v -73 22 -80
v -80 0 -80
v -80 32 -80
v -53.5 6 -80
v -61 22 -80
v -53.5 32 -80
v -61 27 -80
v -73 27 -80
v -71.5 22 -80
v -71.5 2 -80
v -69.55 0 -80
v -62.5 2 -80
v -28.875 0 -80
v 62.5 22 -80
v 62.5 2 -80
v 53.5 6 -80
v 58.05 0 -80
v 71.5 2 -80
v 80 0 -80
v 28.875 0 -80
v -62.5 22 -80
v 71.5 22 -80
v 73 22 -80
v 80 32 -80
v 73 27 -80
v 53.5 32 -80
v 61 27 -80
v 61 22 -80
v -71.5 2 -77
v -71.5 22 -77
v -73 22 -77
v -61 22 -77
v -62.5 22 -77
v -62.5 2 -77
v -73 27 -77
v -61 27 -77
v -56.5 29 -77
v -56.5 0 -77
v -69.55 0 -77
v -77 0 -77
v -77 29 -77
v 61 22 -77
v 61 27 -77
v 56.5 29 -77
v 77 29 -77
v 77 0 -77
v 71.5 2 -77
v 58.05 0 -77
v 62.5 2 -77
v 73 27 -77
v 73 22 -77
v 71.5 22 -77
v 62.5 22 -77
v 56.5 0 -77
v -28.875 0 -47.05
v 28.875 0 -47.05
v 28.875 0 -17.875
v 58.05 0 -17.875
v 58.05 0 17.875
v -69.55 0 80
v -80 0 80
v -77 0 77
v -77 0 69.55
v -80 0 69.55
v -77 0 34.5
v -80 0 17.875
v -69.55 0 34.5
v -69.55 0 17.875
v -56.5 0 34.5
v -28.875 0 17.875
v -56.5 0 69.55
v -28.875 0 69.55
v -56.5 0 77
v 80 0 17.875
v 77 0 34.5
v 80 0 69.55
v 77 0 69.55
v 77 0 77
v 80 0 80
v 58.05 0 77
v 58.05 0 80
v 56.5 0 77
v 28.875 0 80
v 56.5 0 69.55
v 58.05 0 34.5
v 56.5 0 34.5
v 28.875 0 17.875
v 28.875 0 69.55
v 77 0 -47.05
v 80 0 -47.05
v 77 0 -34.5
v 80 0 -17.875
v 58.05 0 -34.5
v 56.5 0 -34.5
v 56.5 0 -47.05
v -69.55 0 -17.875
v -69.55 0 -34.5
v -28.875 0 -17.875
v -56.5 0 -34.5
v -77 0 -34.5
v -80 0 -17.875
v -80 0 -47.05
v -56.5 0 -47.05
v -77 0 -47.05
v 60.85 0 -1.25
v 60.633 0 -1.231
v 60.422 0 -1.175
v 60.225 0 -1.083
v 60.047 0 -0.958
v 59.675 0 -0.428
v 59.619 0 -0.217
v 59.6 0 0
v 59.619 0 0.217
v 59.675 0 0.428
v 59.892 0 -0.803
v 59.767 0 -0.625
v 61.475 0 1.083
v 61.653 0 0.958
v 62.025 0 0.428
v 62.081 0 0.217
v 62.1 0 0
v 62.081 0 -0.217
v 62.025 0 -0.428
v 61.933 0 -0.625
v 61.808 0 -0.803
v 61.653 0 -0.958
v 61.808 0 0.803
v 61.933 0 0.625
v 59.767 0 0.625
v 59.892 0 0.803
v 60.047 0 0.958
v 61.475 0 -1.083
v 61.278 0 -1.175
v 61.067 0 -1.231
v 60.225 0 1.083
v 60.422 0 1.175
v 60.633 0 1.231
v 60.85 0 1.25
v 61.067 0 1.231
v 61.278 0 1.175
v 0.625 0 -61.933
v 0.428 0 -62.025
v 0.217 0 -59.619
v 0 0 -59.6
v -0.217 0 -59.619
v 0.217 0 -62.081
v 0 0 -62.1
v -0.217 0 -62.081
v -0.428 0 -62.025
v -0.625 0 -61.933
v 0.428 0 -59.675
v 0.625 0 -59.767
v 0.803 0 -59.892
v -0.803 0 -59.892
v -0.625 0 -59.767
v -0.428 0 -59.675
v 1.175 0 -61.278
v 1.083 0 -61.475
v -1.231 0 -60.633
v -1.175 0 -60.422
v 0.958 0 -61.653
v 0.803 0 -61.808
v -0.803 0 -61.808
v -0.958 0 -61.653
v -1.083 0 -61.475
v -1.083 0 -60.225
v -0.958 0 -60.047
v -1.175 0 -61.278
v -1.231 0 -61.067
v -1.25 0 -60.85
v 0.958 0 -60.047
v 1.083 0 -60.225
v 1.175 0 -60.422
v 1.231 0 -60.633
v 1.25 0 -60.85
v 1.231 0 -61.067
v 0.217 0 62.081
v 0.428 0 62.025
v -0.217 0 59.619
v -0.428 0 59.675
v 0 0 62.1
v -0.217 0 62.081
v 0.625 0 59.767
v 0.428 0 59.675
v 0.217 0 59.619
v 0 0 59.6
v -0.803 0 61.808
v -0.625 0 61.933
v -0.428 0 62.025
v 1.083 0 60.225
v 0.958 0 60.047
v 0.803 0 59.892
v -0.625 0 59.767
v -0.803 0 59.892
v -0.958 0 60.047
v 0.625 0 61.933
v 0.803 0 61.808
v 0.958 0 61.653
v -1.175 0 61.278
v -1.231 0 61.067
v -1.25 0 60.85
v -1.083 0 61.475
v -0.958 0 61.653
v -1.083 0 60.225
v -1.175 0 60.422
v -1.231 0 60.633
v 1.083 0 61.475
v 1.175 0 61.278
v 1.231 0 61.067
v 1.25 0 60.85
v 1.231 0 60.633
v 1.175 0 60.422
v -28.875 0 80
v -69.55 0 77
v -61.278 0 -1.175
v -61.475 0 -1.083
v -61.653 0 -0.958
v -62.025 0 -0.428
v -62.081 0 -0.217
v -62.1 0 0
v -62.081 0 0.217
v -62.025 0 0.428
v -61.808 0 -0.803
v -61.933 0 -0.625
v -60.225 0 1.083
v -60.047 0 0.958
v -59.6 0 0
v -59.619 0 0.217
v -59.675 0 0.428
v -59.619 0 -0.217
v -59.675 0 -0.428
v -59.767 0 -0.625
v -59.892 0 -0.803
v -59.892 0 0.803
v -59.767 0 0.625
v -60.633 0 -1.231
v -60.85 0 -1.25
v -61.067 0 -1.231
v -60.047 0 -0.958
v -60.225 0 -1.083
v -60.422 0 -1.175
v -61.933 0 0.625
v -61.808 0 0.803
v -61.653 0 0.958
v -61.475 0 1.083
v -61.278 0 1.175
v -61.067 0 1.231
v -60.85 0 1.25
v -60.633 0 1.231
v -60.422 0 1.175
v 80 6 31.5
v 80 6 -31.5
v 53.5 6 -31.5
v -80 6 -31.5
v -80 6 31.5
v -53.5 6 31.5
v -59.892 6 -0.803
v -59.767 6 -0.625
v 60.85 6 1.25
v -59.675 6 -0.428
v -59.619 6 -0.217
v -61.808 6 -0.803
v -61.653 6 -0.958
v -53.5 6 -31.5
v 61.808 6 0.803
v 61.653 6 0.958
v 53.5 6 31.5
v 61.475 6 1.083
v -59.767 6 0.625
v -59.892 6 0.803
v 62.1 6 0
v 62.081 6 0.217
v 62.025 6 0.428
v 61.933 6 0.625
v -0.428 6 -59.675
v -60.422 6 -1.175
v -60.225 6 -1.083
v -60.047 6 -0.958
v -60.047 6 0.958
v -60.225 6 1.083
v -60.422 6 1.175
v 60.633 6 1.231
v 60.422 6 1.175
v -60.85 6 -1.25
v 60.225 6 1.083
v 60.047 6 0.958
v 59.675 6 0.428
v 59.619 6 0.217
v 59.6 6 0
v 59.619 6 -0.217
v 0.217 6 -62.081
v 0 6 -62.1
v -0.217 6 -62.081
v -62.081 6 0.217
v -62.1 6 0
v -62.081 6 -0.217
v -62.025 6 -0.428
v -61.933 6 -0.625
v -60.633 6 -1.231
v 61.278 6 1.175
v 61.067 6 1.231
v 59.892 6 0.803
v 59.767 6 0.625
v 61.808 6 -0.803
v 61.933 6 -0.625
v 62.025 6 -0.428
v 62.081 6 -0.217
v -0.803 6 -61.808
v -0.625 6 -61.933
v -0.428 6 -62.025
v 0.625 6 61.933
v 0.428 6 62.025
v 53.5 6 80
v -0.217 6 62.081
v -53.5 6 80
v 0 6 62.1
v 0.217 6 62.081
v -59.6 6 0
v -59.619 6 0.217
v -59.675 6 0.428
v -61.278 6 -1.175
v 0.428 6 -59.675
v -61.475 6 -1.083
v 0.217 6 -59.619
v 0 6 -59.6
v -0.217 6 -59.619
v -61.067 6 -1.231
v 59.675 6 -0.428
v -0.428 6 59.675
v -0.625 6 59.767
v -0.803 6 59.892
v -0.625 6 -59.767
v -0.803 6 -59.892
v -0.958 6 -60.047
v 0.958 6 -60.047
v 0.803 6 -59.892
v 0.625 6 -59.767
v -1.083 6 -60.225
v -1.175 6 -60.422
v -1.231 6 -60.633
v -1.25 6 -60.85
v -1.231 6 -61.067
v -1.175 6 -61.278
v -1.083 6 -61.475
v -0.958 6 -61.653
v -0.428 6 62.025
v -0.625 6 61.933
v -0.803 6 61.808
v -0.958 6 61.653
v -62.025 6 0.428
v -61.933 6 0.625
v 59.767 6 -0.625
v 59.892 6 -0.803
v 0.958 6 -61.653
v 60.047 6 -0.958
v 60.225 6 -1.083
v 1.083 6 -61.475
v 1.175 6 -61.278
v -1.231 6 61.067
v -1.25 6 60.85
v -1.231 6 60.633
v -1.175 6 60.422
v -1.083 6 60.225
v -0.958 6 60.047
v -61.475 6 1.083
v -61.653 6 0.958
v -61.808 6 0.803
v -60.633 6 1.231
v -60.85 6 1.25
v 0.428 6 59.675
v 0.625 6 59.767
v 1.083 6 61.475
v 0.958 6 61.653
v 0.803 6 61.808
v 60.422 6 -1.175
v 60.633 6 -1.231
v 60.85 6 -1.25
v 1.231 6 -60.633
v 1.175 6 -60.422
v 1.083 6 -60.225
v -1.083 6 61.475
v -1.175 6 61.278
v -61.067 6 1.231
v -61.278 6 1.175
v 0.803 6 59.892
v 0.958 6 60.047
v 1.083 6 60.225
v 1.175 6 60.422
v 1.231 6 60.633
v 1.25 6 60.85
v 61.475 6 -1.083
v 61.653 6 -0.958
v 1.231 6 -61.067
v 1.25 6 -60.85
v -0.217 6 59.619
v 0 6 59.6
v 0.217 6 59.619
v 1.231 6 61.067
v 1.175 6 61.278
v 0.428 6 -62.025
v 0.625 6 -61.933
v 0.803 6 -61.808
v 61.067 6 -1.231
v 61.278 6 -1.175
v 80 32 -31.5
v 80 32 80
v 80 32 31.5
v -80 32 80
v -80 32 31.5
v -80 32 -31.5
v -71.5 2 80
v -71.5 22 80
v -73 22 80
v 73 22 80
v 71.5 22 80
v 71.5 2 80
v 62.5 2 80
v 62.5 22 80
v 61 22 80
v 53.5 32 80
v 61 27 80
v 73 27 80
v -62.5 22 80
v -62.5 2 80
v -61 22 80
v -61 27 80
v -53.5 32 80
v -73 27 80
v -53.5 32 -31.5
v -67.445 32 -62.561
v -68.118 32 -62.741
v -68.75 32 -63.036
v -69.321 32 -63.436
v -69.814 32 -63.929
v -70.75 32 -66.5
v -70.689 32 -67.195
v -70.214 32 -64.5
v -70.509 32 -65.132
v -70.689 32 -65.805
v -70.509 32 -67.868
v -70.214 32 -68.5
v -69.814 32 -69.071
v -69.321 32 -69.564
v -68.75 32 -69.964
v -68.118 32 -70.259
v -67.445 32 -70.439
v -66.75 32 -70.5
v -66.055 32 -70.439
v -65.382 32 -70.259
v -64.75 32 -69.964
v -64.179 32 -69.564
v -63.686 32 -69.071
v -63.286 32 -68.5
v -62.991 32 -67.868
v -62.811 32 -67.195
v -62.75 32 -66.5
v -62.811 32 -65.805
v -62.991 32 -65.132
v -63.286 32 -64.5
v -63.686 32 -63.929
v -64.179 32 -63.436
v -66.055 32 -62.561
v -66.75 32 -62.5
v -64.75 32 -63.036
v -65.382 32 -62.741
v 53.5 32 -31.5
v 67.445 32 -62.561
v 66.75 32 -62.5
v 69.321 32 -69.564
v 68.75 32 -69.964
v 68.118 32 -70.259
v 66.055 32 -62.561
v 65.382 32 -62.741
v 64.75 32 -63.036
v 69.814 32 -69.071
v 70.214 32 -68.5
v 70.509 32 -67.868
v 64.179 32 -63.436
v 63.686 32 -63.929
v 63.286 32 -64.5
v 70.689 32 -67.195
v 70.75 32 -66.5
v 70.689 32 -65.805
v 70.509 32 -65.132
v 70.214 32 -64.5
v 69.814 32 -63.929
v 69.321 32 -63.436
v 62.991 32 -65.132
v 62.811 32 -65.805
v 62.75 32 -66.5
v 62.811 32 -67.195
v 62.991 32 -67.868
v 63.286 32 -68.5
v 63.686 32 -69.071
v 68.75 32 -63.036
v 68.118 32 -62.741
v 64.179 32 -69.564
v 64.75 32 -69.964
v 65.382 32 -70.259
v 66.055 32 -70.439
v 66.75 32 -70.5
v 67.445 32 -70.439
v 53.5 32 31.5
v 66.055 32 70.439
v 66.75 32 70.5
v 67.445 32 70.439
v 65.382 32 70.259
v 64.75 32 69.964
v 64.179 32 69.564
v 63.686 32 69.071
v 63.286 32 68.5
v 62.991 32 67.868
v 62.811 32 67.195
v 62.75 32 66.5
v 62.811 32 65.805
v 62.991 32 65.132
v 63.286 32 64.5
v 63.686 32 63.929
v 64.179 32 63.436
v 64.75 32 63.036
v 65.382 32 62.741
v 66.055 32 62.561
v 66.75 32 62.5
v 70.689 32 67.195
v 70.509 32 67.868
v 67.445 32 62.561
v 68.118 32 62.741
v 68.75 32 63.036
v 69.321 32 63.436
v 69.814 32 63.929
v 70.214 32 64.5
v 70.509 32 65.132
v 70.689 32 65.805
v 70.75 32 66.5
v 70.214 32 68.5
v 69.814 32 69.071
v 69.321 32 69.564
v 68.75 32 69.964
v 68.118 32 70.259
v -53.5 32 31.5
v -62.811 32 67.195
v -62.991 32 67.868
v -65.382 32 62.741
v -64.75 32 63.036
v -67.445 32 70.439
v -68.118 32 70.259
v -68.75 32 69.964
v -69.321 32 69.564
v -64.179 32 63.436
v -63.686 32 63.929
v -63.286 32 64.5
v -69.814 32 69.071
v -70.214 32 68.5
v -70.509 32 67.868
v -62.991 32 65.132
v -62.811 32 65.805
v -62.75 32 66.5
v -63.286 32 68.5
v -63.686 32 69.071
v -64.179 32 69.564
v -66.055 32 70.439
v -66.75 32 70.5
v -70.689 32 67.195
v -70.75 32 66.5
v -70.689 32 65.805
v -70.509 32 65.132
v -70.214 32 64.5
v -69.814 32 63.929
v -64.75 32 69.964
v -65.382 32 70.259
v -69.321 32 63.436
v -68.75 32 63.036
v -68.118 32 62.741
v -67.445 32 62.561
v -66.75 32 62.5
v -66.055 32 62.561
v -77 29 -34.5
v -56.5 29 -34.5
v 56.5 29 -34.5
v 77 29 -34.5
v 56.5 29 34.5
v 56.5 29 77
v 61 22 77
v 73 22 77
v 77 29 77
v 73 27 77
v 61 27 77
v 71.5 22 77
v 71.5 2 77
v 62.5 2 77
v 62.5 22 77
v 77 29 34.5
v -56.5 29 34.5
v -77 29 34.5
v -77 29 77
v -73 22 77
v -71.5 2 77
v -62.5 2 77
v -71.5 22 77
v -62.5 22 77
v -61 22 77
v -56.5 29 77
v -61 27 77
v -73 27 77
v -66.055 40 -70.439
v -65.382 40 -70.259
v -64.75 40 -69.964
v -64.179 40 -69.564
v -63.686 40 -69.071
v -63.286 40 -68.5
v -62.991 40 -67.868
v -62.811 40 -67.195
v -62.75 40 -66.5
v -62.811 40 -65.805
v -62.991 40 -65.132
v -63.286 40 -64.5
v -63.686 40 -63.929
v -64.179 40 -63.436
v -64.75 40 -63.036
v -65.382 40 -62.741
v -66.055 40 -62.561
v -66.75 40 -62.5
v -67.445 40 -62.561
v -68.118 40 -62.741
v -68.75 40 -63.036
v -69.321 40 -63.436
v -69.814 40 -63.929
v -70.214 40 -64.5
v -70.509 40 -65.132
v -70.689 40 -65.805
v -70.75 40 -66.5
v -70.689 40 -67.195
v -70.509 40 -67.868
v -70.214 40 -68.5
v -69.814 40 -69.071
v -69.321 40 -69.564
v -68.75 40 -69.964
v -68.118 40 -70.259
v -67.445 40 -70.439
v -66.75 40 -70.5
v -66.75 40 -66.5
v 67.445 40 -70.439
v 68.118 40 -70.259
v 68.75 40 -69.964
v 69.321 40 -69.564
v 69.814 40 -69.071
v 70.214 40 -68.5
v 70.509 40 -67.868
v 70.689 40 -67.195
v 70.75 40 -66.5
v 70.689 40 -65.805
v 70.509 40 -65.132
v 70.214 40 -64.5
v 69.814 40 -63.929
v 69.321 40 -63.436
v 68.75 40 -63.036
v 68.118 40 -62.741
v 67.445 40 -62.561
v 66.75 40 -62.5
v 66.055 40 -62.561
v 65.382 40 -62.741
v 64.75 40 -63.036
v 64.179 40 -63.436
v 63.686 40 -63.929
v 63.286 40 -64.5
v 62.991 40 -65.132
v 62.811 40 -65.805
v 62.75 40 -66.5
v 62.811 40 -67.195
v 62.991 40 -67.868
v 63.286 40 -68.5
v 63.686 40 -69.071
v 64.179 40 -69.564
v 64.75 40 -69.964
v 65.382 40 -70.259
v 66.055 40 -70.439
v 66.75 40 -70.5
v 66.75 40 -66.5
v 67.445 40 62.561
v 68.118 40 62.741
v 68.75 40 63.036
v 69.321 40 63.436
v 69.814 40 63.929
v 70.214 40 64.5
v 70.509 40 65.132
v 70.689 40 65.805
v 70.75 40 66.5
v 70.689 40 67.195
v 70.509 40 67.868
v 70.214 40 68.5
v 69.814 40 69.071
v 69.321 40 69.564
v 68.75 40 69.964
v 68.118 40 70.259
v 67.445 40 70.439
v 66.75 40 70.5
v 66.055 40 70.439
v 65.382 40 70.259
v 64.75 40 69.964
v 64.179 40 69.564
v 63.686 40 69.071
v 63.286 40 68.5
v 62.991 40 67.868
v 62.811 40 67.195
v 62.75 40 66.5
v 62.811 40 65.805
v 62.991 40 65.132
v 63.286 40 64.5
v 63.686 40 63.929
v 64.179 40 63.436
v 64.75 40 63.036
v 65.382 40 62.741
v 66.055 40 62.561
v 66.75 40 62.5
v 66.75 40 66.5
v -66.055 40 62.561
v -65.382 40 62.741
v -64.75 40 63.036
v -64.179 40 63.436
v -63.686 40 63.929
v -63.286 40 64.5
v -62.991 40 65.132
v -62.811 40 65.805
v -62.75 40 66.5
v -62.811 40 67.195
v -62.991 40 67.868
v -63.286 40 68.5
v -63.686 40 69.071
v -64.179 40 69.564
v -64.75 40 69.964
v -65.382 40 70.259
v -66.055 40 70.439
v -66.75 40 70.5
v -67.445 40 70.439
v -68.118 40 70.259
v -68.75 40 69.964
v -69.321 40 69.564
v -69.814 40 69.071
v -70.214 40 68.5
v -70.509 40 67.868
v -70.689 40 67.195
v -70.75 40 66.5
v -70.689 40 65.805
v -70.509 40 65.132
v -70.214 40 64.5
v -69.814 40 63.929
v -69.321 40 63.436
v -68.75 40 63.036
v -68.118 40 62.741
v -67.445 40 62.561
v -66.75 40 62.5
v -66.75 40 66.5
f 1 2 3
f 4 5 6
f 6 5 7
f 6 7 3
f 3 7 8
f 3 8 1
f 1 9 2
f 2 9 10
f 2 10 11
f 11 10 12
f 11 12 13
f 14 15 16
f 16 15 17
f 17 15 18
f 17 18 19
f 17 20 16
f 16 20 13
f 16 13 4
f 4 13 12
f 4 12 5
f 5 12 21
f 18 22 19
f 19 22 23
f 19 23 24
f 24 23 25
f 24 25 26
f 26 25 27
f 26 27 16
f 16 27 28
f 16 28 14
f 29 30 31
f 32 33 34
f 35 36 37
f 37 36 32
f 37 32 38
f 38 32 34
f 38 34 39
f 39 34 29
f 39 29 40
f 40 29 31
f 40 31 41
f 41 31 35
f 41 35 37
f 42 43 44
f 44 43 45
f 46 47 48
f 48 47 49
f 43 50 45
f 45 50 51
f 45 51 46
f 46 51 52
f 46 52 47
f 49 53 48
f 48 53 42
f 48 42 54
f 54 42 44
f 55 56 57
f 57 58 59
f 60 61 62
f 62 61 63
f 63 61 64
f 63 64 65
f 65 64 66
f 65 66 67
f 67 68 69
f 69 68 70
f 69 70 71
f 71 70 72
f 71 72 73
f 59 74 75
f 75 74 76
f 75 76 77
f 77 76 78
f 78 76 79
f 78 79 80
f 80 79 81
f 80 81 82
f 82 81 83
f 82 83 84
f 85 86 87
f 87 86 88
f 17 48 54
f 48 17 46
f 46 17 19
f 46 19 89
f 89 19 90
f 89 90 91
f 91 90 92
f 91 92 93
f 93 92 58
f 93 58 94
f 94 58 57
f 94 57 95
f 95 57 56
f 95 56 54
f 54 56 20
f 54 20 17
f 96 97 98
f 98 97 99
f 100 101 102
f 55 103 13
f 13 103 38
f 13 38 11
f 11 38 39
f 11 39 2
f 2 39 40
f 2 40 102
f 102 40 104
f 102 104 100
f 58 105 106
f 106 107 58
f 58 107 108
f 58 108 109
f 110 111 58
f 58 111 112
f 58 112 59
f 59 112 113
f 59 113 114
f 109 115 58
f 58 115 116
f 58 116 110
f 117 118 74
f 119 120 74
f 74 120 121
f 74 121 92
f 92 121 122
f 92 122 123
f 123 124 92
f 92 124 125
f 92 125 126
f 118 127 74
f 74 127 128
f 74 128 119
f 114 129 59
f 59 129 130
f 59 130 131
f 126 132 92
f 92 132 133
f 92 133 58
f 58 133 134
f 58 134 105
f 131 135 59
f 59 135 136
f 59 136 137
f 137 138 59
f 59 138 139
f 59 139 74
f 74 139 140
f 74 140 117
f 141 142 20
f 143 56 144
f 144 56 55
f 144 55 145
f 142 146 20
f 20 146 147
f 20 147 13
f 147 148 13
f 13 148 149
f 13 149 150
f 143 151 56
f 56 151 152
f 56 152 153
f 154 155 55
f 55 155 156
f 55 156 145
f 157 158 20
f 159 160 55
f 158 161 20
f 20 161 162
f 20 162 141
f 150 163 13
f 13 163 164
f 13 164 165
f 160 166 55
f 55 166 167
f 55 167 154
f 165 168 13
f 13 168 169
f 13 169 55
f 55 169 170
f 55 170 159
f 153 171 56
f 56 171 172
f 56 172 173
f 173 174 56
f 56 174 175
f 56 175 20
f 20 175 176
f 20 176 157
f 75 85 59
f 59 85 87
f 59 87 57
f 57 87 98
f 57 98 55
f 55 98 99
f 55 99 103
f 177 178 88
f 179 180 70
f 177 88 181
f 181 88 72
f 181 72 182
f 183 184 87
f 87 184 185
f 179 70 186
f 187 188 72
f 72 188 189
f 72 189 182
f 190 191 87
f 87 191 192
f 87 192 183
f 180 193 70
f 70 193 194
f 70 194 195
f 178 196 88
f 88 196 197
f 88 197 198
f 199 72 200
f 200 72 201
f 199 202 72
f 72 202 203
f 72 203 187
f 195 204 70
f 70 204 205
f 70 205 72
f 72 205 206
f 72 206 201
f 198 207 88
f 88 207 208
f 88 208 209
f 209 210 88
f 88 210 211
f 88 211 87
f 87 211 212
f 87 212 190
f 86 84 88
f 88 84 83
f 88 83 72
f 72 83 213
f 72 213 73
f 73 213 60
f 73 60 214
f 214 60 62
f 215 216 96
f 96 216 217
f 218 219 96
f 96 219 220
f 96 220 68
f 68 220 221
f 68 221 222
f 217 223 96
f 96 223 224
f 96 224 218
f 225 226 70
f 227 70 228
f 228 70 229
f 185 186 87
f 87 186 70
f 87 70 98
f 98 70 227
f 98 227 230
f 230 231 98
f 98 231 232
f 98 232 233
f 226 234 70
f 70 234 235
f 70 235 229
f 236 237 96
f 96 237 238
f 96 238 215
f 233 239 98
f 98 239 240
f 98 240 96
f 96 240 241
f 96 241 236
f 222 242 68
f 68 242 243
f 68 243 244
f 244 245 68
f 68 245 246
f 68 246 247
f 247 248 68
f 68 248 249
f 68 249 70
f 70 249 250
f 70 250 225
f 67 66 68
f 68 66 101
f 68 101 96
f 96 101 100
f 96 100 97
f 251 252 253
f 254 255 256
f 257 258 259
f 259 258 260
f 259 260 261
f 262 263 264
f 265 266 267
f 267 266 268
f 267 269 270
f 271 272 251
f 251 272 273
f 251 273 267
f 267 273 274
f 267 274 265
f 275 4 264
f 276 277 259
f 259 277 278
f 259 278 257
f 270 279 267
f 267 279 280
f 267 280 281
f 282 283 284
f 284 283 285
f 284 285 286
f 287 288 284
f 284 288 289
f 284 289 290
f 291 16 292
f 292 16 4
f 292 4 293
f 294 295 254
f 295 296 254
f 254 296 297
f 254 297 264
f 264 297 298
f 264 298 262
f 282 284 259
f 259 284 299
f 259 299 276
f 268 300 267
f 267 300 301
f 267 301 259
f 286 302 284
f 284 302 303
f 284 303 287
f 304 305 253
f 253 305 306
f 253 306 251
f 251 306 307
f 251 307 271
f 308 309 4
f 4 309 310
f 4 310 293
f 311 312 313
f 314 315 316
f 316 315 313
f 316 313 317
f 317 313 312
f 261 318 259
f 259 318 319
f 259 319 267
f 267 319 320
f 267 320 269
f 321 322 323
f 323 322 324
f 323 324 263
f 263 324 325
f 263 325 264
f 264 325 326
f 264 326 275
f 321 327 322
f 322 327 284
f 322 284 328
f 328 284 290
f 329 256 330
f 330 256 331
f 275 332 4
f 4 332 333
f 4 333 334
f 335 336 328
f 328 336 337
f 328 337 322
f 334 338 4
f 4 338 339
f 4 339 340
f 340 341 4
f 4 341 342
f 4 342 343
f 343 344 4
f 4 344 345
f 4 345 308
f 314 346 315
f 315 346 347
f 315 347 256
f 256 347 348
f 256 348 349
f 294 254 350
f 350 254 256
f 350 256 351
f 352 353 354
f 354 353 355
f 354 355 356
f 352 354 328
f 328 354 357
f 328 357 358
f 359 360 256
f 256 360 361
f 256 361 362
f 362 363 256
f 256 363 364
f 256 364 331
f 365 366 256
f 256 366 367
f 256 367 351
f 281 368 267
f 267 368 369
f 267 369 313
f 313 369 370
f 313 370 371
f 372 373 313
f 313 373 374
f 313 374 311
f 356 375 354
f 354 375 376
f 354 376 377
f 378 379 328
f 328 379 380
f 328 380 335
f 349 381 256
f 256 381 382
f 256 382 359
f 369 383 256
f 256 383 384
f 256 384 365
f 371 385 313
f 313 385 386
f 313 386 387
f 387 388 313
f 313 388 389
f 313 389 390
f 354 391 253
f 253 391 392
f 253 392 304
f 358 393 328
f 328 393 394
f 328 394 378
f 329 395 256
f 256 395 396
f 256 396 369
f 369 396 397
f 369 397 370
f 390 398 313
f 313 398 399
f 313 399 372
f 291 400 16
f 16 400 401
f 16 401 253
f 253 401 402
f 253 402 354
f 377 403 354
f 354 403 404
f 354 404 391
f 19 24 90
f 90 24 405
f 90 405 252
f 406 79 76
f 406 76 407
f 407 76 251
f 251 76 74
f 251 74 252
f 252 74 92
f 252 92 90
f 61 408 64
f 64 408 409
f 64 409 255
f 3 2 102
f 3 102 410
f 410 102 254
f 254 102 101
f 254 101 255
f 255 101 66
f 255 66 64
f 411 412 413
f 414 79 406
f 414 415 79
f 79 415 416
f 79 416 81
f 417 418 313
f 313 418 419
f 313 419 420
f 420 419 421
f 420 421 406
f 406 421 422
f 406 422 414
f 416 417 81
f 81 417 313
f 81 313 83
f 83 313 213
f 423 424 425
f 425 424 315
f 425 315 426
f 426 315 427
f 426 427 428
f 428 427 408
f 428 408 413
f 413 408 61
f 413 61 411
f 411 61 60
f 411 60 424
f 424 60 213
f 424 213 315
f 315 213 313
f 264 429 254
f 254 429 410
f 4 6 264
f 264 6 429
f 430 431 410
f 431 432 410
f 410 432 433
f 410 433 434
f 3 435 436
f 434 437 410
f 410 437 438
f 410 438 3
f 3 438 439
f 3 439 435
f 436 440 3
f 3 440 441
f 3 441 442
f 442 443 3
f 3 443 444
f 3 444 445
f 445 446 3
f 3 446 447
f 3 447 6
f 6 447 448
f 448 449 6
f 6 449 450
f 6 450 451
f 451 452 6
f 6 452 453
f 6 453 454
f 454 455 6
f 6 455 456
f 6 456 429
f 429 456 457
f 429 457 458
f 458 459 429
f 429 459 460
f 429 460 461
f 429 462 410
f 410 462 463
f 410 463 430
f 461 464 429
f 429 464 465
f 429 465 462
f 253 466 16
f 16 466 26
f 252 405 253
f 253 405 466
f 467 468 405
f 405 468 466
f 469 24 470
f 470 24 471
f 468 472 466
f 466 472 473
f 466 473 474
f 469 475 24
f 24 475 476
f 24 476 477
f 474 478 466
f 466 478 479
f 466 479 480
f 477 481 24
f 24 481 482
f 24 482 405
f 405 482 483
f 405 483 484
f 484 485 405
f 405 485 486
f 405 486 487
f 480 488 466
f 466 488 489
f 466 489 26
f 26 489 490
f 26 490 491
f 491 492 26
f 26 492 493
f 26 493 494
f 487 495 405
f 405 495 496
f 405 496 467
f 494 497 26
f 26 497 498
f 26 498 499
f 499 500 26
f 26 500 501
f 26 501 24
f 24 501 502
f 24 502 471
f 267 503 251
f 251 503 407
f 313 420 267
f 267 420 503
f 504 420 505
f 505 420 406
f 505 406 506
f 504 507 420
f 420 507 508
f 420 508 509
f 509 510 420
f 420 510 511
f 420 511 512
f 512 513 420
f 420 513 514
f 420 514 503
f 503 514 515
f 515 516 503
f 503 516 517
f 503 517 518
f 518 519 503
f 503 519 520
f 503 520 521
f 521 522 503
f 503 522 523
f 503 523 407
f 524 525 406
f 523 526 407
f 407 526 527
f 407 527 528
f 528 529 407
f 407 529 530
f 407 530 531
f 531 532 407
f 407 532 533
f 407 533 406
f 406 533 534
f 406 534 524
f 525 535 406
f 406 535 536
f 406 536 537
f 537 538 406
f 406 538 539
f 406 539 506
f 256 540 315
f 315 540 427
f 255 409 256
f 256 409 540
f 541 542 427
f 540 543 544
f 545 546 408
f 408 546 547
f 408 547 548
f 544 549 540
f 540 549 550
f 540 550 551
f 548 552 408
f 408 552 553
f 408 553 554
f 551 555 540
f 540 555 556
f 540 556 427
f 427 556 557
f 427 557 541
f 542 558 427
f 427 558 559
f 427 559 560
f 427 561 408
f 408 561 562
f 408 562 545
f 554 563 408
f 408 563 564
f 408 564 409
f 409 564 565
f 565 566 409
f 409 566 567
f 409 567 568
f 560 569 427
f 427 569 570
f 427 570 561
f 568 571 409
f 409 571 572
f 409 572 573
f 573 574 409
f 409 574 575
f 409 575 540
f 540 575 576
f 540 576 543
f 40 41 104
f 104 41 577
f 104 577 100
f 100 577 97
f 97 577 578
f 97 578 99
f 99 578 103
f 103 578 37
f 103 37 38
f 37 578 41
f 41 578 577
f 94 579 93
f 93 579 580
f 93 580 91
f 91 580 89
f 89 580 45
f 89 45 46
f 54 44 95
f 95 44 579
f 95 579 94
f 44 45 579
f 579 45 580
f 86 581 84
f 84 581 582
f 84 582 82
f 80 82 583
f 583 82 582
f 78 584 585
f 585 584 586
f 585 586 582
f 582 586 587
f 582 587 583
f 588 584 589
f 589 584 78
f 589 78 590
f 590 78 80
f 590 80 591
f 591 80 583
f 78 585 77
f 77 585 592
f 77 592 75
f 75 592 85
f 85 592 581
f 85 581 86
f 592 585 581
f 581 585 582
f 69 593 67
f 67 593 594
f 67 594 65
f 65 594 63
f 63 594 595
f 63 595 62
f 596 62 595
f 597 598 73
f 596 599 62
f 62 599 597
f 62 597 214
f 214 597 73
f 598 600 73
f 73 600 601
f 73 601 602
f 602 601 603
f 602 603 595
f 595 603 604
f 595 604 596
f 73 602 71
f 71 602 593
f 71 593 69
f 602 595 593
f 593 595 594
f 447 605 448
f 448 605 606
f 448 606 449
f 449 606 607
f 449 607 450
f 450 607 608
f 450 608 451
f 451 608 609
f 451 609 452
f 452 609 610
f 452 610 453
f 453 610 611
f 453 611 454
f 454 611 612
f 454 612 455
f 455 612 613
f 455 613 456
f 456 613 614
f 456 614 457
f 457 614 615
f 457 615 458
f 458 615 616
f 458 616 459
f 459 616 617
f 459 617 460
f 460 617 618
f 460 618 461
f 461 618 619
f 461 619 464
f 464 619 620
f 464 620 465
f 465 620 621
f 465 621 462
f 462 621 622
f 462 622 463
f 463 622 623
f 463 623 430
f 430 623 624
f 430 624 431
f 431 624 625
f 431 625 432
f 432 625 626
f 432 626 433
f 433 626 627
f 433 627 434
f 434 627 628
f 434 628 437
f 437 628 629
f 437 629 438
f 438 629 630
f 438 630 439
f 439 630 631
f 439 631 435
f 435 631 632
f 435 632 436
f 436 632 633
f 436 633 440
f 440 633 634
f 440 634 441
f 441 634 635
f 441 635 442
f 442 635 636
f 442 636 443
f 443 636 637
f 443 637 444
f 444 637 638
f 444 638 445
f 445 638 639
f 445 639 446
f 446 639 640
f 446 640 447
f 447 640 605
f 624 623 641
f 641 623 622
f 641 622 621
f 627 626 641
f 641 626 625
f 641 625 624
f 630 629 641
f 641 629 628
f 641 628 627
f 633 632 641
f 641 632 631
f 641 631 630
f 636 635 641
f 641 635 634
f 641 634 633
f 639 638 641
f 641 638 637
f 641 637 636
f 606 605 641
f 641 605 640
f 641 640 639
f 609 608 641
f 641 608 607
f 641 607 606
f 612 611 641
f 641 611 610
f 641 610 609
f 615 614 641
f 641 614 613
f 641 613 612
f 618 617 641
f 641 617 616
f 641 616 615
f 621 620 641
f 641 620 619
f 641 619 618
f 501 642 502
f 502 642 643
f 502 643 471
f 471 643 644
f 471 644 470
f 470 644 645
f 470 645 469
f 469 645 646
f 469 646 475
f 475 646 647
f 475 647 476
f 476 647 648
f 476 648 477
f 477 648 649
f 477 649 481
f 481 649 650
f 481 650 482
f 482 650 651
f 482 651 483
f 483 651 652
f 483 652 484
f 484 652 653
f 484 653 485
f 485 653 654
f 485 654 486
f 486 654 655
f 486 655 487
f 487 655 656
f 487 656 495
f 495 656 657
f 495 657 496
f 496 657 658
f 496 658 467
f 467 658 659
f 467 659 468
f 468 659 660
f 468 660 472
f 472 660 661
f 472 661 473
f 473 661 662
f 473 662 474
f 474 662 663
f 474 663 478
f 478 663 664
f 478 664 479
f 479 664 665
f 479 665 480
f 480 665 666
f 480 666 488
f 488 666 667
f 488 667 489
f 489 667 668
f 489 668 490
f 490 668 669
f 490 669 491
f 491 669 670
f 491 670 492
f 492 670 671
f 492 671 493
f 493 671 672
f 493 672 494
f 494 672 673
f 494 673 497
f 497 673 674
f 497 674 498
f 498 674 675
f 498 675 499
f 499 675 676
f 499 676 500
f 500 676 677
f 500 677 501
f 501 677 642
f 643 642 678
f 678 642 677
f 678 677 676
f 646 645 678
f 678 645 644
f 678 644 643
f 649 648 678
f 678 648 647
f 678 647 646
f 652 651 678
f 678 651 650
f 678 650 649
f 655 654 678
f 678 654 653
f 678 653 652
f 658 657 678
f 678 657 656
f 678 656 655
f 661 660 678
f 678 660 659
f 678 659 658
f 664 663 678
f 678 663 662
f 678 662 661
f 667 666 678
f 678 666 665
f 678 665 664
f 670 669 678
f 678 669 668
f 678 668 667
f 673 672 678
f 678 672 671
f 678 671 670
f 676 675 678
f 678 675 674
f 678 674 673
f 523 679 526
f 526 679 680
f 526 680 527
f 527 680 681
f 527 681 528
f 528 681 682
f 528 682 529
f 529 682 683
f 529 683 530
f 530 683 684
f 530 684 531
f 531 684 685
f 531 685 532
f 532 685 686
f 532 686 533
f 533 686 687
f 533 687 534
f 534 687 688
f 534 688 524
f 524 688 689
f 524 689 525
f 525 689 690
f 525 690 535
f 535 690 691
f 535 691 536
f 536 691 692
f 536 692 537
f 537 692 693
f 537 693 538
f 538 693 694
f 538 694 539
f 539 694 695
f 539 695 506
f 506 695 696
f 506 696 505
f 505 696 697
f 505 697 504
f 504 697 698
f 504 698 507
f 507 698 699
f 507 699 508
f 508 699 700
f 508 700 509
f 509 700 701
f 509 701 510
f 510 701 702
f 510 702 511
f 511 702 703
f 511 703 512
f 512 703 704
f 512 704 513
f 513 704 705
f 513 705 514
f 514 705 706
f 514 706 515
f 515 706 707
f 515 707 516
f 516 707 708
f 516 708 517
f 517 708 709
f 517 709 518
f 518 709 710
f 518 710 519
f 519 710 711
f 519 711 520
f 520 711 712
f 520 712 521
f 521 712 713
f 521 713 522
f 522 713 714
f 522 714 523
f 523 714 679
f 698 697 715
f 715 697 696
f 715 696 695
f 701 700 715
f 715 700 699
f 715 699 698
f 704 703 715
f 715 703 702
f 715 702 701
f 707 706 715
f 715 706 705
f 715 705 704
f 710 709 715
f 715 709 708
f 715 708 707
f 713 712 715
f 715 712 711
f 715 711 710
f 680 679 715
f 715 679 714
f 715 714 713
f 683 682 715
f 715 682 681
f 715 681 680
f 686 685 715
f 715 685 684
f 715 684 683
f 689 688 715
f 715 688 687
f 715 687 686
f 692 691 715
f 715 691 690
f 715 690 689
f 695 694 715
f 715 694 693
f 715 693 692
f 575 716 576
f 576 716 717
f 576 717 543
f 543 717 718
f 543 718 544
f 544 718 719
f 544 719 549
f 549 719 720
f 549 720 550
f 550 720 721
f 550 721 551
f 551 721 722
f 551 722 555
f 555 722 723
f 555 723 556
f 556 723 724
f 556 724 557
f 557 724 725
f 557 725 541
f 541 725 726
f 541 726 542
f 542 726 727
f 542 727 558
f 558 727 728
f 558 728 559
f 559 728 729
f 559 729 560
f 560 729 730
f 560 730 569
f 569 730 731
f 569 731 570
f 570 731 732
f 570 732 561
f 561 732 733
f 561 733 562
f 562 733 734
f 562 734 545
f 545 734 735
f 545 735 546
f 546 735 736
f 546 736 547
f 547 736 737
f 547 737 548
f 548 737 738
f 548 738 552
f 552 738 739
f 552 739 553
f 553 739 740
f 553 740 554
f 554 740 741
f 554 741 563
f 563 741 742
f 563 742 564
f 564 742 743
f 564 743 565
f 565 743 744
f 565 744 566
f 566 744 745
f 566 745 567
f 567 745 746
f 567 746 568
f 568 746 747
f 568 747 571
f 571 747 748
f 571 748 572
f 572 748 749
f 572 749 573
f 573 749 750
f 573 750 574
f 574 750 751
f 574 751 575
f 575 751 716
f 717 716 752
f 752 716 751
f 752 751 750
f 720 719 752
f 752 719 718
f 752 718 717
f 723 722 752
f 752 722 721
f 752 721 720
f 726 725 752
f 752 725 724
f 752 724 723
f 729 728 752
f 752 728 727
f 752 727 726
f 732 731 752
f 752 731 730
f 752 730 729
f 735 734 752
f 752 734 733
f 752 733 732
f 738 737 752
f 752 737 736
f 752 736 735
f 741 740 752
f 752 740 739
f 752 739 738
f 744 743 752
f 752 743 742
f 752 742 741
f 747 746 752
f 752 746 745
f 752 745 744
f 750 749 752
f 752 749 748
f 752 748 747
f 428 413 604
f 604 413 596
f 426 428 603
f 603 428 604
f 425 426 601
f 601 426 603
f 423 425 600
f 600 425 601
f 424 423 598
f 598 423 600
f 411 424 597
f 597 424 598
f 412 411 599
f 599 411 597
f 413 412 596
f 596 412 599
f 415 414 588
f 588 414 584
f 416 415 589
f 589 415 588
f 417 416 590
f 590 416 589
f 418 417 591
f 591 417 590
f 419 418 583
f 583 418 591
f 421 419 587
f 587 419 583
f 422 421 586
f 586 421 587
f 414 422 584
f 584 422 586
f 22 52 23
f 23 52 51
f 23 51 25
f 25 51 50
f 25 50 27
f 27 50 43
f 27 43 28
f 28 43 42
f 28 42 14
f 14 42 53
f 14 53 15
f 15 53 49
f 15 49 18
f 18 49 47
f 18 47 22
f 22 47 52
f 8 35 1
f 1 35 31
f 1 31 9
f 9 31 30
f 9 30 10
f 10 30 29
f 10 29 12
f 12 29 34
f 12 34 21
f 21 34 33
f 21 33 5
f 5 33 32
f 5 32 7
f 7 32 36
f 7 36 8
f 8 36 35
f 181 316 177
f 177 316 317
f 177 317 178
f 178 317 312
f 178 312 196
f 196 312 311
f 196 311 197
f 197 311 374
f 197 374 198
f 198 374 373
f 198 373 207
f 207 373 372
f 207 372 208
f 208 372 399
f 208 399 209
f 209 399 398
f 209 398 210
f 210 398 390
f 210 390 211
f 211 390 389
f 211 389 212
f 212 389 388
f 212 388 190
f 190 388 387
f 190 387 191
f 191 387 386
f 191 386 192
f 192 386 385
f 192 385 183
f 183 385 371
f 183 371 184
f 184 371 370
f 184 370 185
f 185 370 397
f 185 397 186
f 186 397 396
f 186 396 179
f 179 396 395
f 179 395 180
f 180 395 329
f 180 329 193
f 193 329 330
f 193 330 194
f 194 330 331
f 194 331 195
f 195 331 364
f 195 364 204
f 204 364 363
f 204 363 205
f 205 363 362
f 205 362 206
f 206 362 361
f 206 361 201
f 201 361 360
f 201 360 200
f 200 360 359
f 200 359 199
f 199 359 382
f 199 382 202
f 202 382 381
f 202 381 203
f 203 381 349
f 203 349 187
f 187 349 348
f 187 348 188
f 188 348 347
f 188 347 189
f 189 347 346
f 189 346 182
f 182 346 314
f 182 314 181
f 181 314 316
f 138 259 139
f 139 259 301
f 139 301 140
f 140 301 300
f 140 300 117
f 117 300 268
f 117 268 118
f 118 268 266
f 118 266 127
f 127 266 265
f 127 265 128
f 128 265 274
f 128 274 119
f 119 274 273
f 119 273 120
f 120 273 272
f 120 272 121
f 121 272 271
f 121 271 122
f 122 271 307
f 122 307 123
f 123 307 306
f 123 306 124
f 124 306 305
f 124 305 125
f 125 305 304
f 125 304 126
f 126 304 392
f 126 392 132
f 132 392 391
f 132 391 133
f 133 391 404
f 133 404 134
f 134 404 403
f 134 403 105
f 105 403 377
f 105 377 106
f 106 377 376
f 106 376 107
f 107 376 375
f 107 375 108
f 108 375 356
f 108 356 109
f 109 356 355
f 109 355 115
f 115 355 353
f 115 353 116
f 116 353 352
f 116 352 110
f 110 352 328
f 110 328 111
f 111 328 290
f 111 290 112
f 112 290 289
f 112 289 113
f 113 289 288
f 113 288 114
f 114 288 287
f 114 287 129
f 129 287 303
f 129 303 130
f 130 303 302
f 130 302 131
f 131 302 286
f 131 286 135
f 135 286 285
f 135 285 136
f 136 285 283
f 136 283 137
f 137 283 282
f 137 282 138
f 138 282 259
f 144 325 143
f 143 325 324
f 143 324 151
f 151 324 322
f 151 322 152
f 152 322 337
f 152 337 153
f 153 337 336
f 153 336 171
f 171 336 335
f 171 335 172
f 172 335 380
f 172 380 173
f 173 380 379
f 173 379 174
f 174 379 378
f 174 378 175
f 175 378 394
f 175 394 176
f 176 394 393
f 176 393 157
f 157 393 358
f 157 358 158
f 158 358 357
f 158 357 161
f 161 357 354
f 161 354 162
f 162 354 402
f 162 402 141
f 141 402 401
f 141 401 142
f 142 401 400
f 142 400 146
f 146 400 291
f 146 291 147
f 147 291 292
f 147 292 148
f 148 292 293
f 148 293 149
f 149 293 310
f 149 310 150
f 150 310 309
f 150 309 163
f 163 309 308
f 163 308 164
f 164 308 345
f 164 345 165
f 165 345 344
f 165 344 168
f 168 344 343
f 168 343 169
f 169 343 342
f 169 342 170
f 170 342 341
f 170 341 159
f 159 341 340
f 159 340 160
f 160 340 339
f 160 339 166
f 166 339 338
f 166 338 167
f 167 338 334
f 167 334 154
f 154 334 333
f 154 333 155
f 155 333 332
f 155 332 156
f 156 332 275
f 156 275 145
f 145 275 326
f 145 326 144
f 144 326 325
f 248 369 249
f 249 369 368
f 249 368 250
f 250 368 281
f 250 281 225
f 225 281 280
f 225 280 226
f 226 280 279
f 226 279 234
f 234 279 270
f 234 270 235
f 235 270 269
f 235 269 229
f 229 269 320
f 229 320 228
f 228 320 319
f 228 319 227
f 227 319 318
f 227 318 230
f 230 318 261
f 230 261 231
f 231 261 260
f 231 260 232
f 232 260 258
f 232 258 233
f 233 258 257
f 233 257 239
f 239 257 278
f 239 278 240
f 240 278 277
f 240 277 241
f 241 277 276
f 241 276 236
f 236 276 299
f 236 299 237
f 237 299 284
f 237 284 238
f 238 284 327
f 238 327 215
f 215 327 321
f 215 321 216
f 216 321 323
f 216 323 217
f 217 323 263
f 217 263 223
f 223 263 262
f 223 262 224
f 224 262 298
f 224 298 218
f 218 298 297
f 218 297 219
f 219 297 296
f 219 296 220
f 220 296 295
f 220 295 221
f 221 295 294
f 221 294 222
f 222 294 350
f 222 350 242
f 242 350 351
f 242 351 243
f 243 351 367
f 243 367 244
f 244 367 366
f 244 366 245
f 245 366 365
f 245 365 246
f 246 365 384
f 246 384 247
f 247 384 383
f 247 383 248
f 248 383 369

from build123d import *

# Parameters (mm, degrees)
SKETCH2_W           = 160
SKETCH2_H           = 160
BOSS_EXTRUDE2_DEPTH = 6
SKETCH3_W           = 26.5
SKETCH3_H           = 48.5
BOSS_EXTRUDE3_DEPTH = 32
SKETCH4_W           = 20.5
SKETCH4_H           = 42.5
CUT_EXTRUDE2_DEPTH  = 29
SKETCH5_R           = 4
BOSS_EXTRUDE4_DEPTH = 8
CUT_EXTRUDE3_DEPTH  = 8
SKETCH7_R           = 1.25
CUT_EXTRUDE4_DEPTH  = 10


with BuildPart() as part:
    # Sketch2 → Boss-Extrude2 (new body)
    with BuildSketch(Plane(origin=(0, 0, 0), x_dir=(1, 0, 0), z_dir=(0, 1, 0))):
        Rectangle(SKETCH2_W, SKETCH2_H)
    extrude(amount=BOSS_EXTRUDE2_DEPTH)

    # Sketch3 → Boss-Extrude3 (add)
    with BuildSketch(Plane(origin=(0, 0, 0), x_dir=(1, 0, 0), z_dir=(0, 1, 0))):
        with Locations((-66.75, 55.75)):
            Rectangle(SKETCH3_W, SKETCH3_H)
        with Locations((66.75, 55.75)):
            Rectangle(SKETCH3_W, SKETCH3_H)
        with Locations((66.75, -55.75)):
            Rectangle(SKETCH3_W, SKETCH3_H)
        with Locations((-66.75, -55.75)):
            Rectangle(SKETCH3_W, SKETCH3_H)
    extrude(amount=BOSS_EXTRUDE3_DEPTH)

    # Sketch4 → Cut-Extrude2 (cut)
    with BuildSketch(Plane(origin=(0, 0, 0), x_dir=(1, 0, 0), z_dir=(0, 1, 0))):
        with Locations((-66.75, 55.75)):
            Rectangle(SKETCH4_W, SKETCH4_H)
        with Locations((66.75, 55.75)):
            Rectangle(SKETCH4_W, SKETCH4_H)
        with Locations((66.75, -55.75)):
            Rectangle(SKETCH4_W, SKETCH4_H)
        with Locations((-66.75, -55.75)):
            Rectangle(SKETCH4_W, SKETCH4_H)
    extrude(amount=CUT_EXTRUDE2_DEPTH, mode=Mode.SUBTRACT)

    # Sketch5 → Boss-Extrude4 (add)
    with BuildSketch(Plane(origin=(0, 32, 0), x_dir=(1, 0, 0), z_dir=(0, 1, 0))):
        with Locations(Location((-66.75, 66.5, 0), (0, 0, 270))):
            Circle(SKETCH5_R)
        with Locations(Location((66.75, 66.5, 0), (0, 0, 90))):
            Circle(SKETCH5_R)
        with Locations(Location((66.75, -66.5, 0), (0, 0, 270))):
            Circle(SKETCH5_R)
        with Locations(Location((-66.75, -66.5, 0), (0, 0, 90))):
            Circle(SKETCH5_R)
    extrude(amount=BOSS_EXTRUDE4_DEPTH)

    # Sketch6 → Cut-Extrude3 (cut)
    with BuildSketch(Plane.XY.offset(80)):
        Polygon((-73, 27), (-61, 27), (-61, 22), (-62.5, 22), (-62.5, 2), (-71.5, 2), (-71.5, 22), (-73, 22), align=None)
        Polygon((73, 22), (73, 27), (61, 27), (61, 22), (62.5, 22), (62.5, 2), (71.5, 2), (71.5, 22), align=None)
    cut_extrude3 = extrude(amount=-CUT_EXTRUDE3_DEPTH, mode=Mode.SUBTRACT)

    # Mirror1: Cut-Extrude3 across plane
    add(cut_extrude3.mirror(Plane.XY), mode=Mode.SUBTRACT)

    # Sketch7 → Cut-Extrude4 (cut)
    with BuildSketch(Plane(origin=(0, 6, 0), x_dir=(1, 0, 0), z_dir=(0, 1, 0))):
        with Locations(Location((-60.85, 0, 0), (0, 0, 270))):
            Circle(SKETCH7_R)
        with Locations(Location((0, 60.85, 0), (0, 0, 270))):
            Circle(SKETCH7_R)
        with Locations(Location((60.85, 0, 0), (0, 0, 270))):
            Circle(SKETCH7_R)
        with Locations(Location((0, -60.85, 0), (0, 0, 270))):
            Circle(SKETCH7_R)
    extrude(amount=-CUT_EXTRUDE4_DEPTH, mode=Mode.SUBTRACT)


solid = part.part
